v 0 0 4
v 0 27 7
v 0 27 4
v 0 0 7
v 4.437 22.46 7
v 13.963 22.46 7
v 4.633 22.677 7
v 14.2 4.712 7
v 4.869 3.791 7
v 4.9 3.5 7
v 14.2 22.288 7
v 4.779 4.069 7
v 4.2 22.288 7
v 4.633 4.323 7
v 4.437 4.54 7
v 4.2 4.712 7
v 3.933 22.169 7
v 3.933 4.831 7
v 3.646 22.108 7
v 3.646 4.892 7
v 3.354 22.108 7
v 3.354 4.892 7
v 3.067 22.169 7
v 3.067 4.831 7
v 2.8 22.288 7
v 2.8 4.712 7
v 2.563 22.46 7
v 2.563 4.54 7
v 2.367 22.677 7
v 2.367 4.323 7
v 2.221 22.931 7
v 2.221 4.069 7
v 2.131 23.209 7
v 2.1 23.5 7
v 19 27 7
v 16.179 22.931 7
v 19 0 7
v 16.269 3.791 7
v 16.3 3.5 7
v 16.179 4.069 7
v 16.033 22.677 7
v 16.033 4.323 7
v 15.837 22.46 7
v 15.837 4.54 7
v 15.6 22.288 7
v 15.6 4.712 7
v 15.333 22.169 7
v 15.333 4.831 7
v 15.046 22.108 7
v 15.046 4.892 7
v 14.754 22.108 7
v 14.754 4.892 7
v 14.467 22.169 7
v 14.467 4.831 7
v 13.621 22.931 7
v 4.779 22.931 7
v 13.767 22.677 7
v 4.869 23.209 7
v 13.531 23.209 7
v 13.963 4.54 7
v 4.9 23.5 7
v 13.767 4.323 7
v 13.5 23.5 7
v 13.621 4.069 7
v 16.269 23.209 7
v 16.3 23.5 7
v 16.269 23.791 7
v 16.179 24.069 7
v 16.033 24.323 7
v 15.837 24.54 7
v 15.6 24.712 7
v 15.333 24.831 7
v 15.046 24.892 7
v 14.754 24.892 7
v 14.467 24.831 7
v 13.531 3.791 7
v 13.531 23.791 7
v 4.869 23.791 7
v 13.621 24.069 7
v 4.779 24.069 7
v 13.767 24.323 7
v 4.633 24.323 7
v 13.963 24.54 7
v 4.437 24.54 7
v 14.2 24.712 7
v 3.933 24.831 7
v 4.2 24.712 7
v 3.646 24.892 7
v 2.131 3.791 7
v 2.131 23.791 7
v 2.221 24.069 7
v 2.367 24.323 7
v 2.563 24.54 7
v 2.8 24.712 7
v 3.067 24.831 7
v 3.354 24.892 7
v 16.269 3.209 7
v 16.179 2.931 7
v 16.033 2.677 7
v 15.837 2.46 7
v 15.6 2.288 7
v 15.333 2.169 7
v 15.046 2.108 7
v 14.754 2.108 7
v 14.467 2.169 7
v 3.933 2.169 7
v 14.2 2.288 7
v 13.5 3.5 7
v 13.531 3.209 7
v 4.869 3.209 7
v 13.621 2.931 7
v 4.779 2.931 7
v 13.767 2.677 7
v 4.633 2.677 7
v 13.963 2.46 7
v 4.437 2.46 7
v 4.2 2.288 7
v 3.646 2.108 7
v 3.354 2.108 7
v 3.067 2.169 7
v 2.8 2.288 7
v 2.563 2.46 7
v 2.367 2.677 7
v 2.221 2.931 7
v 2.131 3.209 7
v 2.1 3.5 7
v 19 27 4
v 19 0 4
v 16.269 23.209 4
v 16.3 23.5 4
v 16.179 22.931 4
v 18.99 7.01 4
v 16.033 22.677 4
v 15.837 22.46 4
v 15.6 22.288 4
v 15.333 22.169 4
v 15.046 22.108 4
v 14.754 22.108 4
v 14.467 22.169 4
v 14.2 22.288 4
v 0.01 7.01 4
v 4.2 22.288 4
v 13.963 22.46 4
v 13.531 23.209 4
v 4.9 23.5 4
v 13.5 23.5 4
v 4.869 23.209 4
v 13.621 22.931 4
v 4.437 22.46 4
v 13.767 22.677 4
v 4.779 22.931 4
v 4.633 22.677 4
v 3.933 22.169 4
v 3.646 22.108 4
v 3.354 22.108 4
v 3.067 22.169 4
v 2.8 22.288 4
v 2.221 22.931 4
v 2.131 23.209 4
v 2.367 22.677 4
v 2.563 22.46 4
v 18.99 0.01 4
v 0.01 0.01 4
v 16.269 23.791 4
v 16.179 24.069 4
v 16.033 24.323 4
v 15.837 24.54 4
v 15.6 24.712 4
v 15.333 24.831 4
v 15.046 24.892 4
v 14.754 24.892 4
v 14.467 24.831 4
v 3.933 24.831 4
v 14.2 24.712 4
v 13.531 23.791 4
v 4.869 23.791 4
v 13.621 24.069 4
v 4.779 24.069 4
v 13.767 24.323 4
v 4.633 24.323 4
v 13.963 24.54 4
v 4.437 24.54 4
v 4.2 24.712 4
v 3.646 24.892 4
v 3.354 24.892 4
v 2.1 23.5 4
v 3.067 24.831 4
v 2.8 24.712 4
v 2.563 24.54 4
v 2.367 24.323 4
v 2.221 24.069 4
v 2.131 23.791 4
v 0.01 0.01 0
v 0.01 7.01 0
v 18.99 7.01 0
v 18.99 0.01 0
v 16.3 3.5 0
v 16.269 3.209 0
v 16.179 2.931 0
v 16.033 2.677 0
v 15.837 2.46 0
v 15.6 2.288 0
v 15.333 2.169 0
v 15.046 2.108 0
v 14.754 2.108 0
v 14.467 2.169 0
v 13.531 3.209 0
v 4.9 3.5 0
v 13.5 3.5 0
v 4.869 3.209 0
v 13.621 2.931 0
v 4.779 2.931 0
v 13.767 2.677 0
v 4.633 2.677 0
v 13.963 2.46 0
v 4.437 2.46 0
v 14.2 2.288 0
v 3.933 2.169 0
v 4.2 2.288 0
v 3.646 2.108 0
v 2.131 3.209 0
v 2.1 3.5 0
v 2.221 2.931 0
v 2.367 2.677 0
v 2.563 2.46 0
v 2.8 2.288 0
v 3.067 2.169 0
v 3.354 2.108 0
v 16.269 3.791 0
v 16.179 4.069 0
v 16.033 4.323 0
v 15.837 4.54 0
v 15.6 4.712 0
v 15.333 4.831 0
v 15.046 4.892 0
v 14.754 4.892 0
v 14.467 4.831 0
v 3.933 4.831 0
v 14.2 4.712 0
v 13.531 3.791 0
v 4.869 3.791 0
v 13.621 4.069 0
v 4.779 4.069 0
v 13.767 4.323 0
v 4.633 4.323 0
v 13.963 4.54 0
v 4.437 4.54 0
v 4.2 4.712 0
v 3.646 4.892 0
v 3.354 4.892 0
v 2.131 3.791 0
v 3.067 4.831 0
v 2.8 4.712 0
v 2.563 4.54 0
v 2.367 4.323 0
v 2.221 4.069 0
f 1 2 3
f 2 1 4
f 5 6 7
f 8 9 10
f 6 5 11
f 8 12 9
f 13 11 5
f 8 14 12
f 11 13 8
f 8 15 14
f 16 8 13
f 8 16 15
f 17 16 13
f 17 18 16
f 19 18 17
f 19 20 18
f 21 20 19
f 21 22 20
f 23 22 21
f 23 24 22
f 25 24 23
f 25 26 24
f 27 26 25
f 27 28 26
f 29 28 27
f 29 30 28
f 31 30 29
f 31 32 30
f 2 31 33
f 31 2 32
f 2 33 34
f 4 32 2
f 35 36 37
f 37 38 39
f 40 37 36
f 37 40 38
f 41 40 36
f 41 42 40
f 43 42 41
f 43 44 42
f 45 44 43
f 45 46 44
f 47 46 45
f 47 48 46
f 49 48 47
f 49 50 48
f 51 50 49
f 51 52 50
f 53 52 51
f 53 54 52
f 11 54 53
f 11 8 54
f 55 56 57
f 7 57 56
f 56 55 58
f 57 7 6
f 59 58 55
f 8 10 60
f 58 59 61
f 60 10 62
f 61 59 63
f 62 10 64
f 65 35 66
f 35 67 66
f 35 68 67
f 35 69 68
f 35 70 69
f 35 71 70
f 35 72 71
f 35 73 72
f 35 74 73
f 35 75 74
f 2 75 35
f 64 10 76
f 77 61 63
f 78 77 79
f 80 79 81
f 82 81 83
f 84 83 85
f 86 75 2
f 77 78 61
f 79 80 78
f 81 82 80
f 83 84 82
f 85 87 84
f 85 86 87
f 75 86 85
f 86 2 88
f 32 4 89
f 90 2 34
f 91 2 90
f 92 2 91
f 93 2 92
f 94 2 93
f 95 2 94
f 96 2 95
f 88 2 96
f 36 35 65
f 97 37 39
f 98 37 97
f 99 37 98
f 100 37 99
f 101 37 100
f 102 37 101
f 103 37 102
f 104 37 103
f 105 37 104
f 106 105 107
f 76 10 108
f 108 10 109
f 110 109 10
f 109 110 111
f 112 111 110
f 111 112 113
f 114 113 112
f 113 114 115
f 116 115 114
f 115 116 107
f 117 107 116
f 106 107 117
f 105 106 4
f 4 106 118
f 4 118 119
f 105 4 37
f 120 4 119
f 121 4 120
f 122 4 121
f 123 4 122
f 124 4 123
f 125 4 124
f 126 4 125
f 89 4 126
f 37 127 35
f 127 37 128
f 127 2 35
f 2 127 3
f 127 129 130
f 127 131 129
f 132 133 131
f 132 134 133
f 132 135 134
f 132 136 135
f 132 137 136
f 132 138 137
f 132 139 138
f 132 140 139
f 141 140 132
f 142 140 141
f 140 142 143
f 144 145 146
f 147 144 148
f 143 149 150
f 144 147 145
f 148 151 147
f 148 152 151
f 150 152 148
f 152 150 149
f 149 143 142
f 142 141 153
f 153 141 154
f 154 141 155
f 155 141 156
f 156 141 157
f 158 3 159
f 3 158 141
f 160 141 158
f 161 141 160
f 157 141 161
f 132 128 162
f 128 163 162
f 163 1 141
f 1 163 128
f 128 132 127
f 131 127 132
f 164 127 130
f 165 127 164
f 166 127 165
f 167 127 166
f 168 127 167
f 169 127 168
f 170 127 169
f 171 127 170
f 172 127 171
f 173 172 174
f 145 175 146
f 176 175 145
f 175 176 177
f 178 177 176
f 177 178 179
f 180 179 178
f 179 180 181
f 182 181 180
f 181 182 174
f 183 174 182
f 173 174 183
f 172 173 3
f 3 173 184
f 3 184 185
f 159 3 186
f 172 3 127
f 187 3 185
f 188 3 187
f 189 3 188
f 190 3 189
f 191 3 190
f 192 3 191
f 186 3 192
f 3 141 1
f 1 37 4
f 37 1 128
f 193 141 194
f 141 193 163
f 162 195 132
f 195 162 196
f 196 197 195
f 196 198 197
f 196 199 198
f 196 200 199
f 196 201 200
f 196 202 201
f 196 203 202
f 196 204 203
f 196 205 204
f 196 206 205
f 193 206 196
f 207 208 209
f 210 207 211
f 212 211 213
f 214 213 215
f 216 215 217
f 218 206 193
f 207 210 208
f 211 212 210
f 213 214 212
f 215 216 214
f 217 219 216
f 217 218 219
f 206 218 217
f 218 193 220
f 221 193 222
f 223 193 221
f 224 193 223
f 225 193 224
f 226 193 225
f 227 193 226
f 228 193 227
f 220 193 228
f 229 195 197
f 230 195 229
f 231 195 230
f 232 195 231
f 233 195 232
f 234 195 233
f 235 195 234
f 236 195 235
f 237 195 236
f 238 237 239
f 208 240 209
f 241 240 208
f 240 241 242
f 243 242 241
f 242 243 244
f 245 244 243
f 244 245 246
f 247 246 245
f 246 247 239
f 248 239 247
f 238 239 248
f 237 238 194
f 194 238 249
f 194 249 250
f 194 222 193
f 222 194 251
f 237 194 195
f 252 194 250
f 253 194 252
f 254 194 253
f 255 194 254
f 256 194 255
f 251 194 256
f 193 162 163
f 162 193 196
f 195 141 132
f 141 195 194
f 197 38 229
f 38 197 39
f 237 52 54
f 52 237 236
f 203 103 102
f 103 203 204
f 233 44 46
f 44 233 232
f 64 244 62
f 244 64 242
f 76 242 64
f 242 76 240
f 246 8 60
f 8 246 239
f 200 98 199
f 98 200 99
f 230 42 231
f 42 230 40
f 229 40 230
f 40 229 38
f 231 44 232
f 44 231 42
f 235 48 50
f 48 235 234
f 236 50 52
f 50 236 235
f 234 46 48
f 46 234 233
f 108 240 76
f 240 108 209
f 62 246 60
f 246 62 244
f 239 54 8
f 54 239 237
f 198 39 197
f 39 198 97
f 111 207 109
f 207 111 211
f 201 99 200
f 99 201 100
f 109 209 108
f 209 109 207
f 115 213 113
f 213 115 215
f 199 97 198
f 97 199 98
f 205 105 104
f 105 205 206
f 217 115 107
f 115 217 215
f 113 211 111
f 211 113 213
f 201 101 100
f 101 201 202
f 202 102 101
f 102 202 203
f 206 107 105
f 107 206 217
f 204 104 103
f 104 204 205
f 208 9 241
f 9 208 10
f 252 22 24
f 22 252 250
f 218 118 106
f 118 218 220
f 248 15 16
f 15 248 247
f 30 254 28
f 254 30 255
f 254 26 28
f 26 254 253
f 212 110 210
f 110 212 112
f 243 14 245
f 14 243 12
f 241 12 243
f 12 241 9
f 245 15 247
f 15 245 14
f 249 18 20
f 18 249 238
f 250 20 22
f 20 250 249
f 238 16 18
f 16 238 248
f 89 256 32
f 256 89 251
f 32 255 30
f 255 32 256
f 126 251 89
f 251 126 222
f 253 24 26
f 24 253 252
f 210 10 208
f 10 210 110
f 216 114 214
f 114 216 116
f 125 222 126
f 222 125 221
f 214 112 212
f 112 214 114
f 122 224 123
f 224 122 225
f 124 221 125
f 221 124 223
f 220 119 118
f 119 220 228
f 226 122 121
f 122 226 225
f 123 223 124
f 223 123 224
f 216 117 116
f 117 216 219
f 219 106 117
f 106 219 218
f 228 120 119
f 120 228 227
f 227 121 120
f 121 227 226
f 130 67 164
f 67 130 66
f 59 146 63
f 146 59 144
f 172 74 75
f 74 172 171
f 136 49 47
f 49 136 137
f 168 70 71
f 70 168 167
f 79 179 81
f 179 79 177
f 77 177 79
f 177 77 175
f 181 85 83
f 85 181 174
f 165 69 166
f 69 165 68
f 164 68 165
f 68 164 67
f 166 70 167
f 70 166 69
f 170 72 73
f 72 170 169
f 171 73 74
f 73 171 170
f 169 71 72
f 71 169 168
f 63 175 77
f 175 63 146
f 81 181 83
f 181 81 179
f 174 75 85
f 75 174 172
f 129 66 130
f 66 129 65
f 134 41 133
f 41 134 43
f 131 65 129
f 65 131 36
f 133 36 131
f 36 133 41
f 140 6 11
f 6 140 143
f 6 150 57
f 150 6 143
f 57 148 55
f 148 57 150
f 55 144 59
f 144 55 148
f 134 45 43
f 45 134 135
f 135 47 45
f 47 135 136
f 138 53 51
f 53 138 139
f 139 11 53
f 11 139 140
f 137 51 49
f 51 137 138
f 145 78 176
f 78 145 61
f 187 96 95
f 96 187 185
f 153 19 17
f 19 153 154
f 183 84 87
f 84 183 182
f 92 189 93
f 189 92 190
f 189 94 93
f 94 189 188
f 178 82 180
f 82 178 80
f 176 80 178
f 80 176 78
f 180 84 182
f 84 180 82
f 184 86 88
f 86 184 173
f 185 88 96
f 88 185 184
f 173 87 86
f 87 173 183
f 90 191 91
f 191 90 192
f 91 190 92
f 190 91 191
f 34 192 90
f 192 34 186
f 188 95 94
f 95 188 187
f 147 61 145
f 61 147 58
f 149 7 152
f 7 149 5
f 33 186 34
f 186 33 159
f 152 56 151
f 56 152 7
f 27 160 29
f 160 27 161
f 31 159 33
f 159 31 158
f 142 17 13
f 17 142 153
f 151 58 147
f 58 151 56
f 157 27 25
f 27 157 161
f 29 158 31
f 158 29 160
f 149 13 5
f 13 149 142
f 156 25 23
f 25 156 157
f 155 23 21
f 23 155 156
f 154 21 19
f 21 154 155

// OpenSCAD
offsetx = 3.5;
offsety = 3.5;


difference() {
    union() {
    translate([0,0,4]) cube([19, 27, 3]);
    translate([0.01,0.01,0]) cube([19-0.02, 7, 4.1]);
    }
    translate([offsetx+11.4, offsety, -0.1]) cylinder(h=20, r=2.2/2+0.3, center=false, $fn=30);  // holes mount TRRS connector
    translate([offsetx, offsety, -0.1]) cylinder(h=20, r=2.2/2+0.3, center=false, $fn=30);
    translate([offsetx+11.4, offsety+20, -0.1]) cylinder(h=20, r=2.2/2+0.3, center=false, $fn=30);
    translate([offsetx, offsety+20, -0.1]) cylinder(h=20, r=2.2/2+0.3, center=false, $fn=30);
}
